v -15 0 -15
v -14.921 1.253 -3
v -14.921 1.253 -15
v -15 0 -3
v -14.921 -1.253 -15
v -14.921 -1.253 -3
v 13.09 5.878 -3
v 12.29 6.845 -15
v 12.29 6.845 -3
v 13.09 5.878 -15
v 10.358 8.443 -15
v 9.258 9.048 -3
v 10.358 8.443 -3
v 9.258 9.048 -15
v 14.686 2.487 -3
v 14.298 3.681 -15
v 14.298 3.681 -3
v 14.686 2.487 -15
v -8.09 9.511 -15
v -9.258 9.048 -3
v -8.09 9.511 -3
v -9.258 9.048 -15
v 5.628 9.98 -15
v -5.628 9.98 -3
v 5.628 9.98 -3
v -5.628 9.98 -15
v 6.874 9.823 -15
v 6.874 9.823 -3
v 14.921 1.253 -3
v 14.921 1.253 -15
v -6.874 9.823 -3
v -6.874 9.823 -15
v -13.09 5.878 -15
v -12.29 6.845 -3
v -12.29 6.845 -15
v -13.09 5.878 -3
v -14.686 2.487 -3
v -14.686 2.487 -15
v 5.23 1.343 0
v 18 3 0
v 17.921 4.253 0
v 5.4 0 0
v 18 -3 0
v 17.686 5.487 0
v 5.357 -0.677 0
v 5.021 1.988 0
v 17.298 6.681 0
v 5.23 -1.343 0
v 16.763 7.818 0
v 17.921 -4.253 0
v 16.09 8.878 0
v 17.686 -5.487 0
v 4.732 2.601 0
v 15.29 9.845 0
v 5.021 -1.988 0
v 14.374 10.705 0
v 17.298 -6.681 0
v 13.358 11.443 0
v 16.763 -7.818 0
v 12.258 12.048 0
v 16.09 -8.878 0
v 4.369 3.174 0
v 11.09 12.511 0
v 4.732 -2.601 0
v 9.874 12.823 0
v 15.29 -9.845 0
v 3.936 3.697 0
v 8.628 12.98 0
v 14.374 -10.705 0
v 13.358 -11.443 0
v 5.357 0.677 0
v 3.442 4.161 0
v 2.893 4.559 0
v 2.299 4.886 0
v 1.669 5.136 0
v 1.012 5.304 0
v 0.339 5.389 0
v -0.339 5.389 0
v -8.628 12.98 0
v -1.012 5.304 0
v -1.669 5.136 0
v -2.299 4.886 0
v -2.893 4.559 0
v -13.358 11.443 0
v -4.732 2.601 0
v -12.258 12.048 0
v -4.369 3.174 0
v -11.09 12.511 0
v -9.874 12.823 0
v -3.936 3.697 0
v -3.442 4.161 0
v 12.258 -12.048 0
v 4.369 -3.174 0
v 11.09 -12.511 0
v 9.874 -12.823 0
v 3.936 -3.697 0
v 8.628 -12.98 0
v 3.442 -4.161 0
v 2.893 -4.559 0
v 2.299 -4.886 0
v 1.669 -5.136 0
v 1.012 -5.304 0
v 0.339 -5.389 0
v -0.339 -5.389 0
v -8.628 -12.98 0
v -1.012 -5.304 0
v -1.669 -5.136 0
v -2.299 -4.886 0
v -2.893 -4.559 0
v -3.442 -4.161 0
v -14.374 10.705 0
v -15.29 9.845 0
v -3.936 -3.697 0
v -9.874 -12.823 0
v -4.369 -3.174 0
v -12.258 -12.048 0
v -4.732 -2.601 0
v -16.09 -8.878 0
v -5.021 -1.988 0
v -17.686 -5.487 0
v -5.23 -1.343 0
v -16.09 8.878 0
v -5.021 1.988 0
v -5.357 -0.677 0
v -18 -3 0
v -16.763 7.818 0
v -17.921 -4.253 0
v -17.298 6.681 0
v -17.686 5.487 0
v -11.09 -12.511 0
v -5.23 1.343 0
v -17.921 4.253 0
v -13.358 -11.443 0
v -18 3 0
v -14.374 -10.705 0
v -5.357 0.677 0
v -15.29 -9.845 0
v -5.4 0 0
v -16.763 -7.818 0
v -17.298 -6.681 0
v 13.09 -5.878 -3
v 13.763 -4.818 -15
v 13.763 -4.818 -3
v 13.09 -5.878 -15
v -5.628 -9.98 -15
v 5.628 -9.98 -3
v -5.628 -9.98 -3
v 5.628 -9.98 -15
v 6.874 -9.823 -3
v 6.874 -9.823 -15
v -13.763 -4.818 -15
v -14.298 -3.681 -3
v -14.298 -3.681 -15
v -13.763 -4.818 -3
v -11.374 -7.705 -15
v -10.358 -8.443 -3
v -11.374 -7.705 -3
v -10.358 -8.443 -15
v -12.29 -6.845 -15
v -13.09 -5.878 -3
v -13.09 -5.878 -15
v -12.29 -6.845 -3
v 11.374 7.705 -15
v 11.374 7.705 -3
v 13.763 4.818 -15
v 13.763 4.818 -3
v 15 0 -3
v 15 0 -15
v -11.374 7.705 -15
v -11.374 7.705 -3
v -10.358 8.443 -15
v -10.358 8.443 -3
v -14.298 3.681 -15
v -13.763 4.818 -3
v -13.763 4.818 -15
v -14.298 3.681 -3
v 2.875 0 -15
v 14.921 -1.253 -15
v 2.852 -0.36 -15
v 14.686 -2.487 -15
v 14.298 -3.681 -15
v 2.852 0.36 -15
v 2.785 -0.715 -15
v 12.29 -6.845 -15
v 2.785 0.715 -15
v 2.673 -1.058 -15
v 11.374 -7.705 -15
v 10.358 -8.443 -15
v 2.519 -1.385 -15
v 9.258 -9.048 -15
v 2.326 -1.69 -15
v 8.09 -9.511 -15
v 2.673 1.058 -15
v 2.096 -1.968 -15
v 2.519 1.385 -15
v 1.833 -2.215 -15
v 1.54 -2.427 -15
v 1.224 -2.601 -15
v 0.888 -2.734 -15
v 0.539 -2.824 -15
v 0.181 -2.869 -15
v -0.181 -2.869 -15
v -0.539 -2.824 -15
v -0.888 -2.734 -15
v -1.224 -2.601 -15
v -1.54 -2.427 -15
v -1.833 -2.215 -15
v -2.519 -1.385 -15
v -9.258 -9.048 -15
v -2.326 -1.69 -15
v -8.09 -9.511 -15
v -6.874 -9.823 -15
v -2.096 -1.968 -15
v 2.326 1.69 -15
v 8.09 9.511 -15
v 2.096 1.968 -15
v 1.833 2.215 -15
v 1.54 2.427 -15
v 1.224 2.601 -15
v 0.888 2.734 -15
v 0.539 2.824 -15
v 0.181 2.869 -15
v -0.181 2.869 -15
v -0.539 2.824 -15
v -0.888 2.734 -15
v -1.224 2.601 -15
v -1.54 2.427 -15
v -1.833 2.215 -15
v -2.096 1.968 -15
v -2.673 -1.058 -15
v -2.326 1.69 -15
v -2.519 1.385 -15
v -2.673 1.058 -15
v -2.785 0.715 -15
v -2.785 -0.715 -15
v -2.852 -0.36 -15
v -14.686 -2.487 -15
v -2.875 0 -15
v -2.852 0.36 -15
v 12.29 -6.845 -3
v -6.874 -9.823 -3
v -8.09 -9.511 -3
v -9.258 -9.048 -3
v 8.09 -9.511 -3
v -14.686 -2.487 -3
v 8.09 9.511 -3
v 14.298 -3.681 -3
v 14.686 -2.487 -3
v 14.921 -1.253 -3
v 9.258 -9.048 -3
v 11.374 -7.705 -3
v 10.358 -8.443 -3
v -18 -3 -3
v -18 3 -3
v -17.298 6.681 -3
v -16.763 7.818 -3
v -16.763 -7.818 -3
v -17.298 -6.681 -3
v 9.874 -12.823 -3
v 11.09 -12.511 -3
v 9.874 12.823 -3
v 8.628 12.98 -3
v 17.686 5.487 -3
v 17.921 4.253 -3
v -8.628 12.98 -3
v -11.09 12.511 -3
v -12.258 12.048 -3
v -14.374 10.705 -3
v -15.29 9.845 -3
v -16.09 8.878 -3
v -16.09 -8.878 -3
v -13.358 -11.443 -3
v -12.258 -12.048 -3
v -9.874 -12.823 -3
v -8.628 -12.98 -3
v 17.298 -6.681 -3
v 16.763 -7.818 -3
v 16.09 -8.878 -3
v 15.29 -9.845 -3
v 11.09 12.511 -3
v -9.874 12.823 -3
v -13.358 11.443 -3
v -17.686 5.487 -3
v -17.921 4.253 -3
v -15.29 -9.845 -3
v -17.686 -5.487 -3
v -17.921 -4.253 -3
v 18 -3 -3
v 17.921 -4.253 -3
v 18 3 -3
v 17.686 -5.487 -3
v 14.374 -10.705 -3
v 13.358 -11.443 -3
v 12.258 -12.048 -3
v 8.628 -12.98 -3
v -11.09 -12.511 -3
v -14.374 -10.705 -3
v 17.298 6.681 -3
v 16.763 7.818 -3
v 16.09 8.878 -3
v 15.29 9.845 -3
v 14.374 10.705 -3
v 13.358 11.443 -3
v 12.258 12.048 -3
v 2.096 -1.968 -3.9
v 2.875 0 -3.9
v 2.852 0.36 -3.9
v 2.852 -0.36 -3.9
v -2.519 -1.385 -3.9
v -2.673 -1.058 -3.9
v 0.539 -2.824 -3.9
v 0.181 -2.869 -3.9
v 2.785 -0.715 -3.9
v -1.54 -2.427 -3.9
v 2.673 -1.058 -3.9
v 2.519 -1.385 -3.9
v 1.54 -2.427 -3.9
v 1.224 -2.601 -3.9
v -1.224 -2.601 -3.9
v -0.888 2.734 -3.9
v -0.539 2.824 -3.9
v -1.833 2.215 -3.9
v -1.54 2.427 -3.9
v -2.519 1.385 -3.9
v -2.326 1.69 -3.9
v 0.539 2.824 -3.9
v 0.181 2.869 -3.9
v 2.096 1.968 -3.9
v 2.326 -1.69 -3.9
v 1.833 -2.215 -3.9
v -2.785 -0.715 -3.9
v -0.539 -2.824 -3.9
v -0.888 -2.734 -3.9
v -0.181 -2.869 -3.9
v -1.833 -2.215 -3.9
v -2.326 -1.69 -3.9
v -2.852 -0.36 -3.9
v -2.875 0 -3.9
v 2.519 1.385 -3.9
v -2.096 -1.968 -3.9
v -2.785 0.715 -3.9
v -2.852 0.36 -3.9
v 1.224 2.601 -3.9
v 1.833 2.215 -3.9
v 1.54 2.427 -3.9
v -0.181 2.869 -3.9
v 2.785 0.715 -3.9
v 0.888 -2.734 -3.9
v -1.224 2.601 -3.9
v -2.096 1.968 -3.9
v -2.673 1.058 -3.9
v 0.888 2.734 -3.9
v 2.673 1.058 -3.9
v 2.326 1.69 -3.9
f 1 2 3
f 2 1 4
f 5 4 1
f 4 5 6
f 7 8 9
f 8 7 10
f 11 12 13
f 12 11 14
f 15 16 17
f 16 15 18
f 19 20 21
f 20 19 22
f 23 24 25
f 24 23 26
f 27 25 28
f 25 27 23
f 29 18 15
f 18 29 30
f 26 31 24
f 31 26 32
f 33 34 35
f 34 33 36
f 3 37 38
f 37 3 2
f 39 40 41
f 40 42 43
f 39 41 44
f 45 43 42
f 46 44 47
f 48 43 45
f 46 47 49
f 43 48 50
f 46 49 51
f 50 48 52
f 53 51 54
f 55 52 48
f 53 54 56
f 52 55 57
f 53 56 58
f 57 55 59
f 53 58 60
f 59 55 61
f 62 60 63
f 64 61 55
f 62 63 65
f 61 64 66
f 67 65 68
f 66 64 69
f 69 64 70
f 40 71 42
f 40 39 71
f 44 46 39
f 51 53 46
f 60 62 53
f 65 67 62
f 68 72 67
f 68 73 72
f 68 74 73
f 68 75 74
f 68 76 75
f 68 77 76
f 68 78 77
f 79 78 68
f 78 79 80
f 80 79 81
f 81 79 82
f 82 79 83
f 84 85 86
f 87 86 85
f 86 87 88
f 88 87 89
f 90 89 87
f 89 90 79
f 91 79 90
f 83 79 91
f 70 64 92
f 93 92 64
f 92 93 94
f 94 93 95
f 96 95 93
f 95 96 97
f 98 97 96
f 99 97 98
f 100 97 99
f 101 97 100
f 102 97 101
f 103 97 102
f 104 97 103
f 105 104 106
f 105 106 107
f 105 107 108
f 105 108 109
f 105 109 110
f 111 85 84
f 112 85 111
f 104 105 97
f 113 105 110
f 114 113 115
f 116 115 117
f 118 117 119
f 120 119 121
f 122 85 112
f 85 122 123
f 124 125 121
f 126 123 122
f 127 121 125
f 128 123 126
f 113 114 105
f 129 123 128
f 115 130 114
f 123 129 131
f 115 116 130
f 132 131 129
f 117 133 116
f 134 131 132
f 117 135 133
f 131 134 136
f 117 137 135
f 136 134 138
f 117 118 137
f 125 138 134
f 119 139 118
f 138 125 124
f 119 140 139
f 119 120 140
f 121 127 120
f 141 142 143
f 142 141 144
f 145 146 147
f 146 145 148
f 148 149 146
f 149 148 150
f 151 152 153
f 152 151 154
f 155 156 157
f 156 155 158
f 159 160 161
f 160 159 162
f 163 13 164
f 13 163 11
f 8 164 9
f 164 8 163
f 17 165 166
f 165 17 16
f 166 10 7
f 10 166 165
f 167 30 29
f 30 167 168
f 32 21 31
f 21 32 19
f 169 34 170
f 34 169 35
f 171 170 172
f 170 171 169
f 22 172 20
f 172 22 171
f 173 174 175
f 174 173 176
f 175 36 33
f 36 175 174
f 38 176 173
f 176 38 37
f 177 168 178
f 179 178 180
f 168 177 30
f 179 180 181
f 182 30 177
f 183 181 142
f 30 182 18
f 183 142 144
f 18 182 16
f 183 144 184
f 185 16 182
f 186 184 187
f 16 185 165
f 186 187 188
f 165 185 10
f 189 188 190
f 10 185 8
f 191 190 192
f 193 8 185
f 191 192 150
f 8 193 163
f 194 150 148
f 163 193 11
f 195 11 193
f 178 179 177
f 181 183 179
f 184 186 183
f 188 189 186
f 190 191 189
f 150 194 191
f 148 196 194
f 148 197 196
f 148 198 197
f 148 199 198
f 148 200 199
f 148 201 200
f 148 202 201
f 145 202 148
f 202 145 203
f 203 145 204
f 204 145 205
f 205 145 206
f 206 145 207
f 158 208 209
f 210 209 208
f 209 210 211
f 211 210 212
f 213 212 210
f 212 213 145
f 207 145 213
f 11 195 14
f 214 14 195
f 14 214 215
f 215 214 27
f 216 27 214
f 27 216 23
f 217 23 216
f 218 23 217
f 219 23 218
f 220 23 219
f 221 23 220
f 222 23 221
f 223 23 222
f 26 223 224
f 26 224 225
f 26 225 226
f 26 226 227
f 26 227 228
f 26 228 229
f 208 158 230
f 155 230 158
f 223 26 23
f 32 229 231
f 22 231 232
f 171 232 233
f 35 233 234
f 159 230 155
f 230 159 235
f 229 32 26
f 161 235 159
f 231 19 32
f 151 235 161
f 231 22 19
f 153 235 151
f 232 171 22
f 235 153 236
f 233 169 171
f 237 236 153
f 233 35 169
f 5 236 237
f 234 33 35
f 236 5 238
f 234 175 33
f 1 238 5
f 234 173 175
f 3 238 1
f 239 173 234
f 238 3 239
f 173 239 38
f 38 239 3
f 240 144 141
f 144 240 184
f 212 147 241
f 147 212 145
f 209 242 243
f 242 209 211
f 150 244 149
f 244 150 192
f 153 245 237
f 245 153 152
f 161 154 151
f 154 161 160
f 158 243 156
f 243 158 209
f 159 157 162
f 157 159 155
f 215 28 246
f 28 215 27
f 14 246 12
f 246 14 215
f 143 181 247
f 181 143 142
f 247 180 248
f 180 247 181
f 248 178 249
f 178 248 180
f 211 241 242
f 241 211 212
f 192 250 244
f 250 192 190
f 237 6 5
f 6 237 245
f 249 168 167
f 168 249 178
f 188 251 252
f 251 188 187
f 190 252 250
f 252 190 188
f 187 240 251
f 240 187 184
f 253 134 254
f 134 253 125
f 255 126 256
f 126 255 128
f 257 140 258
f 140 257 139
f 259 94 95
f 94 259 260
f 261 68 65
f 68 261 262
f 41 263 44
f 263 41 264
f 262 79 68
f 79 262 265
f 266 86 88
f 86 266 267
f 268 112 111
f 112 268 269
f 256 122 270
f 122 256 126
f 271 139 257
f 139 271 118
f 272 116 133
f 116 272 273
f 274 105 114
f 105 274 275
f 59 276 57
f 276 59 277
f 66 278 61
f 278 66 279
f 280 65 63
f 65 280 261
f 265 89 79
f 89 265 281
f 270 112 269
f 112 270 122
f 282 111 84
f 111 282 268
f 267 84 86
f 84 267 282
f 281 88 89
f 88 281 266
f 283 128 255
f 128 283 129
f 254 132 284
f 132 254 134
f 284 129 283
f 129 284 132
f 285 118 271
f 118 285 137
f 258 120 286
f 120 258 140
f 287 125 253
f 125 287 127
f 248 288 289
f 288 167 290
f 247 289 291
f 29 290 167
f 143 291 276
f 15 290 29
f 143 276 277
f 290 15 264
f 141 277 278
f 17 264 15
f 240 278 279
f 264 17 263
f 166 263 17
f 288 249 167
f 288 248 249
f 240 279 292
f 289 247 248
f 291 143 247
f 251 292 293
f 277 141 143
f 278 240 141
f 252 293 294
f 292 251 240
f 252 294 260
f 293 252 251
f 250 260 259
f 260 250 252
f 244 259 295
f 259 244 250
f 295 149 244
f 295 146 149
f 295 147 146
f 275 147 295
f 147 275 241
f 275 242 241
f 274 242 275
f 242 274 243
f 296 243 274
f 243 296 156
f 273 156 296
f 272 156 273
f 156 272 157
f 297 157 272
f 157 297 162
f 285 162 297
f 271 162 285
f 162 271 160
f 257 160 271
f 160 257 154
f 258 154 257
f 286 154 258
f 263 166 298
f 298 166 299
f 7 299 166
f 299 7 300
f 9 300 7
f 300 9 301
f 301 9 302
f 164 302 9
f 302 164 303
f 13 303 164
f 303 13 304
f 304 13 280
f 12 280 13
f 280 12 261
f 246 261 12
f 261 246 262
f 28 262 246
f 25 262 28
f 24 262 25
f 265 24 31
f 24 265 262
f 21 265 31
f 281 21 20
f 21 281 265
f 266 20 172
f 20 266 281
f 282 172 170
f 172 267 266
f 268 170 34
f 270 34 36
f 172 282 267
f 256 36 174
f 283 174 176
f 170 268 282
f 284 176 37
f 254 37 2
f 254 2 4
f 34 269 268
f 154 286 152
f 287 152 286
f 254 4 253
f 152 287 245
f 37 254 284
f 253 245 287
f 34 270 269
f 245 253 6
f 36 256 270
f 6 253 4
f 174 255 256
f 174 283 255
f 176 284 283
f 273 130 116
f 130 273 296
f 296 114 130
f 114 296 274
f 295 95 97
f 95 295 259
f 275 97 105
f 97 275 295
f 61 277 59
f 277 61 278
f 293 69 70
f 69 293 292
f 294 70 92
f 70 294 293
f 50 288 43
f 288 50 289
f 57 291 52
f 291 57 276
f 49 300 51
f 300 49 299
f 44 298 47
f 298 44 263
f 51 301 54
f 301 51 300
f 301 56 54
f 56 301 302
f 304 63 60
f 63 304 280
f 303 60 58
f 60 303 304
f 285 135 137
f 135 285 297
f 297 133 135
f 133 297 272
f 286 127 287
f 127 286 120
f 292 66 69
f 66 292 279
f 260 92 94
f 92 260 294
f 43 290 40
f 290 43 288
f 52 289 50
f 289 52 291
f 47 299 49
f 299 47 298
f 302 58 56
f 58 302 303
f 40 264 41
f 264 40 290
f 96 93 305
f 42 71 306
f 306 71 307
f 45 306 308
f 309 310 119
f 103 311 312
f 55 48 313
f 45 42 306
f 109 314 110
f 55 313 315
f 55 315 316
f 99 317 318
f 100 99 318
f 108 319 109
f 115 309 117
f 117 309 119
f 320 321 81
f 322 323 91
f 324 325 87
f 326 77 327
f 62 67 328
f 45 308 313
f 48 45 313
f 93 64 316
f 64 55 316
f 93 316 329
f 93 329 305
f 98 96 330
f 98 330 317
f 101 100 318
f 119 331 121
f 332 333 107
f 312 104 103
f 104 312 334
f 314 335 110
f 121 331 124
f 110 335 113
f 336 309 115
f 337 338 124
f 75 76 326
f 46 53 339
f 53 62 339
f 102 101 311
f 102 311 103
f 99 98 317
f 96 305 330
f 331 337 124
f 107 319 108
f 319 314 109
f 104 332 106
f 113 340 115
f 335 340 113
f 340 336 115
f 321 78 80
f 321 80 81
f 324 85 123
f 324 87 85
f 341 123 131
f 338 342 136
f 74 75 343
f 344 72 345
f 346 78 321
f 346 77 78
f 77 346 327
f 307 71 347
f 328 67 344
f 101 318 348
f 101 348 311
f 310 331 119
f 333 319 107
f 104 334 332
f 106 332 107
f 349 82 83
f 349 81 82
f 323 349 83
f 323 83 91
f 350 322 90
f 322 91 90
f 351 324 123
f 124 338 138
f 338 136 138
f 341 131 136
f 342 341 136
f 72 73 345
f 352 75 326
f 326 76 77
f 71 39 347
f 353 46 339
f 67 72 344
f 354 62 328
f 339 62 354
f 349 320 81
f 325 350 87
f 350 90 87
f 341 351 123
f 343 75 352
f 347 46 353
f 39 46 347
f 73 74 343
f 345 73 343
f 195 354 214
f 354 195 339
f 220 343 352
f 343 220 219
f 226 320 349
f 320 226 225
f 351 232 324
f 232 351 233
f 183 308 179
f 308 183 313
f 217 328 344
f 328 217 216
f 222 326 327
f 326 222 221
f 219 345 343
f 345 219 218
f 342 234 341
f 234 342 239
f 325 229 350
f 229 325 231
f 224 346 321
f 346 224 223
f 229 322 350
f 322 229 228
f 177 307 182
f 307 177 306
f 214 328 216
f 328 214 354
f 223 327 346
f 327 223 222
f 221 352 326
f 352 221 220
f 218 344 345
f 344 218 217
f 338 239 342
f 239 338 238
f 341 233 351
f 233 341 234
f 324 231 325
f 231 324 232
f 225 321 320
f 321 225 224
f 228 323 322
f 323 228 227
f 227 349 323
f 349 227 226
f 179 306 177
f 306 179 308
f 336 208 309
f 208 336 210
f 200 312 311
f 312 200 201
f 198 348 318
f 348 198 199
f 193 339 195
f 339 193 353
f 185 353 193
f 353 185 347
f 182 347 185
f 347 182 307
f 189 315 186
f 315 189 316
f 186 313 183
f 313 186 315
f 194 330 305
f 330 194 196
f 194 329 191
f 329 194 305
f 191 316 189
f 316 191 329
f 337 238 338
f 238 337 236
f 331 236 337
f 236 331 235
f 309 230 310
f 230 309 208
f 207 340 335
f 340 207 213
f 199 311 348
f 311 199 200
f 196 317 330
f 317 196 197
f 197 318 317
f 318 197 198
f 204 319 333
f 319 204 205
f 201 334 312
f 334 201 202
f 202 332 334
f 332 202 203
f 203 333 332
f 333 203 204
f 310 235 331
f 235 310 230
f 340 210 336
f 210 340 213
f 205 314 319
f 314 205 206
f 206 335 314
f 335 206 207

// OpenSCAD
$fn = 50;


difference() {
	union() {
		translate(v = [0, 0, -15]) {
			hull() {
				translate(v = [-5.0000000000, 0.0000000000, 0]) {
					cylinder(h = 15, r = 10.0000000000);
				}
				translate(v = [5.0000000000, 0.0000000000, 0]) {
					cylinder(h = 15, r = 10.0000000000);
				}
				translate(v = [-5.0000000000, -0.0000000000, 0]) {
					cylinder(h = 15, r = 10.0000000000);
				}
				translate(v = [5.0000000000, -0.0000000000, 0]) {
					cylinder(h = 15, r = 10.0000000000);
				}
			}
		}
		translate(v = [0, 0, -3]) {
			hull() {
				translate(v = [-8.0000000000, 3.0000000000, 0]) {
					cylinder(h = 3, r = 10.0000000000);
				}
				translate(v = [8.0000000000, 3.0000000000, 0]) {
					cylinder(h = 3, r = 10.0000000000);
				}
				translate(v = [-8.0000000000, -3.0000000000, 0]) {
					cylinder(h = 3, r = 10.0000000000);
				}
				translate(v = [8.0000000000, -3.0000000000, 0]) {
					cylinder(h = 3, r = 10.0000000000);
				}
			}
		}
	}
	union() {
		translate(v = [0, 0, 0]) {
			rotate(a = [0, 0, 0]) {
				difference() {
					union() {
						#translate(v = [0, 0, -15.0000000000]) {
							cylinder(h = 15, r = 2.6000000000);
						}
						#translate(v = [0, 0, -3.9000000000]) {
							cylinder(h = 3.9000000000, r = 10.0000000000, r1 = 2.8750000000, r2 = 5.4000000000);
						}
						#translate(v = [0, 0, -15.0000000000]) {
							cylinder(h = 15, r = 2.8750000000);
						}
						#translate(v = [0, 0, -15.0000000000]) {
							cylinder(h = 15, r = 2.6000000000);
						}
					}
					union();
				}
			}
		}
	}
}
